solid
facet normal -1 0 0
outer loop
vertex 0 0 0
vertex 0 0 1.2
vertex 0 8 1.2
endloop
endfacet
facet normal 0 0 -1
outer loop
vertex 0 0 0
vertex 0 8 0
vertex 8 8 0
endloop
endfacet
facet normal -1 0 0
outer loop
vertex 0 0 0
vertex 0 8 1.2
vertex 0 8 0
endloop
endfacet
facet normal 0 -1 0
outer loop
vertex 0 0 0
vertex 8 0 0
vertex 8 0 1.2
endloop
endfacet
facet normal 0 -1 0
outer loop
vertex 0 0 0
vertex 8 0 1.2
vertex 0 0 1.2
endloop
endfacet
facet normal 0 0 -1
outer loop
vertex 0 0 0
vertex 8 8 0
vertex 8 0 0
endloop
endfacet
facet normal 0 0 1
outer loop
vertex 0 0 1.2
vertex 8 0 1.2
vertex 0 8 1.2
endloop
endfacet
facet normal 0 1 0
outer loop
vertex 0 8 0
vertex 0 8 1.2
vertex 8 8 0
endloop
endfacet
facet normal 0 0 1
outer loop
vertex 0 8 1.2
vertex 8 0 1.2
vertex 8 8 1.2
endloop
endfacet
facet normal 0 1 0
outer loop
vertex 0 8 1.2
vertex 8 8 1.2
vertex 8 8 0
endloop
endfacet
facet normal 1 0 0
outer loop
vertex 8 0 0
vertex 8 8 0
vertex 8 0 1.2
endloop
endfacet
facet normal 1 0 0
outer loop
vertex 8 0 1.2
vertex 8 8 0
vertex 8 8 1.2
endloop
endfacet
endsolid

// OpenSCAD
/* Warning, this is a very basic generator with a lot of approximation 
input data : [TFBGA, HEB, 8x8x1.2mm, 120, , C, C04-21465C]
generated by com.zoubworld.electronics.cad.model3d.Basic
Date : Sun Feb 15 10:50:49 CET 2026
*/

//body
color("black")
translate([0,0,0])
cube([8.0,8.0,1.2], center=false);
